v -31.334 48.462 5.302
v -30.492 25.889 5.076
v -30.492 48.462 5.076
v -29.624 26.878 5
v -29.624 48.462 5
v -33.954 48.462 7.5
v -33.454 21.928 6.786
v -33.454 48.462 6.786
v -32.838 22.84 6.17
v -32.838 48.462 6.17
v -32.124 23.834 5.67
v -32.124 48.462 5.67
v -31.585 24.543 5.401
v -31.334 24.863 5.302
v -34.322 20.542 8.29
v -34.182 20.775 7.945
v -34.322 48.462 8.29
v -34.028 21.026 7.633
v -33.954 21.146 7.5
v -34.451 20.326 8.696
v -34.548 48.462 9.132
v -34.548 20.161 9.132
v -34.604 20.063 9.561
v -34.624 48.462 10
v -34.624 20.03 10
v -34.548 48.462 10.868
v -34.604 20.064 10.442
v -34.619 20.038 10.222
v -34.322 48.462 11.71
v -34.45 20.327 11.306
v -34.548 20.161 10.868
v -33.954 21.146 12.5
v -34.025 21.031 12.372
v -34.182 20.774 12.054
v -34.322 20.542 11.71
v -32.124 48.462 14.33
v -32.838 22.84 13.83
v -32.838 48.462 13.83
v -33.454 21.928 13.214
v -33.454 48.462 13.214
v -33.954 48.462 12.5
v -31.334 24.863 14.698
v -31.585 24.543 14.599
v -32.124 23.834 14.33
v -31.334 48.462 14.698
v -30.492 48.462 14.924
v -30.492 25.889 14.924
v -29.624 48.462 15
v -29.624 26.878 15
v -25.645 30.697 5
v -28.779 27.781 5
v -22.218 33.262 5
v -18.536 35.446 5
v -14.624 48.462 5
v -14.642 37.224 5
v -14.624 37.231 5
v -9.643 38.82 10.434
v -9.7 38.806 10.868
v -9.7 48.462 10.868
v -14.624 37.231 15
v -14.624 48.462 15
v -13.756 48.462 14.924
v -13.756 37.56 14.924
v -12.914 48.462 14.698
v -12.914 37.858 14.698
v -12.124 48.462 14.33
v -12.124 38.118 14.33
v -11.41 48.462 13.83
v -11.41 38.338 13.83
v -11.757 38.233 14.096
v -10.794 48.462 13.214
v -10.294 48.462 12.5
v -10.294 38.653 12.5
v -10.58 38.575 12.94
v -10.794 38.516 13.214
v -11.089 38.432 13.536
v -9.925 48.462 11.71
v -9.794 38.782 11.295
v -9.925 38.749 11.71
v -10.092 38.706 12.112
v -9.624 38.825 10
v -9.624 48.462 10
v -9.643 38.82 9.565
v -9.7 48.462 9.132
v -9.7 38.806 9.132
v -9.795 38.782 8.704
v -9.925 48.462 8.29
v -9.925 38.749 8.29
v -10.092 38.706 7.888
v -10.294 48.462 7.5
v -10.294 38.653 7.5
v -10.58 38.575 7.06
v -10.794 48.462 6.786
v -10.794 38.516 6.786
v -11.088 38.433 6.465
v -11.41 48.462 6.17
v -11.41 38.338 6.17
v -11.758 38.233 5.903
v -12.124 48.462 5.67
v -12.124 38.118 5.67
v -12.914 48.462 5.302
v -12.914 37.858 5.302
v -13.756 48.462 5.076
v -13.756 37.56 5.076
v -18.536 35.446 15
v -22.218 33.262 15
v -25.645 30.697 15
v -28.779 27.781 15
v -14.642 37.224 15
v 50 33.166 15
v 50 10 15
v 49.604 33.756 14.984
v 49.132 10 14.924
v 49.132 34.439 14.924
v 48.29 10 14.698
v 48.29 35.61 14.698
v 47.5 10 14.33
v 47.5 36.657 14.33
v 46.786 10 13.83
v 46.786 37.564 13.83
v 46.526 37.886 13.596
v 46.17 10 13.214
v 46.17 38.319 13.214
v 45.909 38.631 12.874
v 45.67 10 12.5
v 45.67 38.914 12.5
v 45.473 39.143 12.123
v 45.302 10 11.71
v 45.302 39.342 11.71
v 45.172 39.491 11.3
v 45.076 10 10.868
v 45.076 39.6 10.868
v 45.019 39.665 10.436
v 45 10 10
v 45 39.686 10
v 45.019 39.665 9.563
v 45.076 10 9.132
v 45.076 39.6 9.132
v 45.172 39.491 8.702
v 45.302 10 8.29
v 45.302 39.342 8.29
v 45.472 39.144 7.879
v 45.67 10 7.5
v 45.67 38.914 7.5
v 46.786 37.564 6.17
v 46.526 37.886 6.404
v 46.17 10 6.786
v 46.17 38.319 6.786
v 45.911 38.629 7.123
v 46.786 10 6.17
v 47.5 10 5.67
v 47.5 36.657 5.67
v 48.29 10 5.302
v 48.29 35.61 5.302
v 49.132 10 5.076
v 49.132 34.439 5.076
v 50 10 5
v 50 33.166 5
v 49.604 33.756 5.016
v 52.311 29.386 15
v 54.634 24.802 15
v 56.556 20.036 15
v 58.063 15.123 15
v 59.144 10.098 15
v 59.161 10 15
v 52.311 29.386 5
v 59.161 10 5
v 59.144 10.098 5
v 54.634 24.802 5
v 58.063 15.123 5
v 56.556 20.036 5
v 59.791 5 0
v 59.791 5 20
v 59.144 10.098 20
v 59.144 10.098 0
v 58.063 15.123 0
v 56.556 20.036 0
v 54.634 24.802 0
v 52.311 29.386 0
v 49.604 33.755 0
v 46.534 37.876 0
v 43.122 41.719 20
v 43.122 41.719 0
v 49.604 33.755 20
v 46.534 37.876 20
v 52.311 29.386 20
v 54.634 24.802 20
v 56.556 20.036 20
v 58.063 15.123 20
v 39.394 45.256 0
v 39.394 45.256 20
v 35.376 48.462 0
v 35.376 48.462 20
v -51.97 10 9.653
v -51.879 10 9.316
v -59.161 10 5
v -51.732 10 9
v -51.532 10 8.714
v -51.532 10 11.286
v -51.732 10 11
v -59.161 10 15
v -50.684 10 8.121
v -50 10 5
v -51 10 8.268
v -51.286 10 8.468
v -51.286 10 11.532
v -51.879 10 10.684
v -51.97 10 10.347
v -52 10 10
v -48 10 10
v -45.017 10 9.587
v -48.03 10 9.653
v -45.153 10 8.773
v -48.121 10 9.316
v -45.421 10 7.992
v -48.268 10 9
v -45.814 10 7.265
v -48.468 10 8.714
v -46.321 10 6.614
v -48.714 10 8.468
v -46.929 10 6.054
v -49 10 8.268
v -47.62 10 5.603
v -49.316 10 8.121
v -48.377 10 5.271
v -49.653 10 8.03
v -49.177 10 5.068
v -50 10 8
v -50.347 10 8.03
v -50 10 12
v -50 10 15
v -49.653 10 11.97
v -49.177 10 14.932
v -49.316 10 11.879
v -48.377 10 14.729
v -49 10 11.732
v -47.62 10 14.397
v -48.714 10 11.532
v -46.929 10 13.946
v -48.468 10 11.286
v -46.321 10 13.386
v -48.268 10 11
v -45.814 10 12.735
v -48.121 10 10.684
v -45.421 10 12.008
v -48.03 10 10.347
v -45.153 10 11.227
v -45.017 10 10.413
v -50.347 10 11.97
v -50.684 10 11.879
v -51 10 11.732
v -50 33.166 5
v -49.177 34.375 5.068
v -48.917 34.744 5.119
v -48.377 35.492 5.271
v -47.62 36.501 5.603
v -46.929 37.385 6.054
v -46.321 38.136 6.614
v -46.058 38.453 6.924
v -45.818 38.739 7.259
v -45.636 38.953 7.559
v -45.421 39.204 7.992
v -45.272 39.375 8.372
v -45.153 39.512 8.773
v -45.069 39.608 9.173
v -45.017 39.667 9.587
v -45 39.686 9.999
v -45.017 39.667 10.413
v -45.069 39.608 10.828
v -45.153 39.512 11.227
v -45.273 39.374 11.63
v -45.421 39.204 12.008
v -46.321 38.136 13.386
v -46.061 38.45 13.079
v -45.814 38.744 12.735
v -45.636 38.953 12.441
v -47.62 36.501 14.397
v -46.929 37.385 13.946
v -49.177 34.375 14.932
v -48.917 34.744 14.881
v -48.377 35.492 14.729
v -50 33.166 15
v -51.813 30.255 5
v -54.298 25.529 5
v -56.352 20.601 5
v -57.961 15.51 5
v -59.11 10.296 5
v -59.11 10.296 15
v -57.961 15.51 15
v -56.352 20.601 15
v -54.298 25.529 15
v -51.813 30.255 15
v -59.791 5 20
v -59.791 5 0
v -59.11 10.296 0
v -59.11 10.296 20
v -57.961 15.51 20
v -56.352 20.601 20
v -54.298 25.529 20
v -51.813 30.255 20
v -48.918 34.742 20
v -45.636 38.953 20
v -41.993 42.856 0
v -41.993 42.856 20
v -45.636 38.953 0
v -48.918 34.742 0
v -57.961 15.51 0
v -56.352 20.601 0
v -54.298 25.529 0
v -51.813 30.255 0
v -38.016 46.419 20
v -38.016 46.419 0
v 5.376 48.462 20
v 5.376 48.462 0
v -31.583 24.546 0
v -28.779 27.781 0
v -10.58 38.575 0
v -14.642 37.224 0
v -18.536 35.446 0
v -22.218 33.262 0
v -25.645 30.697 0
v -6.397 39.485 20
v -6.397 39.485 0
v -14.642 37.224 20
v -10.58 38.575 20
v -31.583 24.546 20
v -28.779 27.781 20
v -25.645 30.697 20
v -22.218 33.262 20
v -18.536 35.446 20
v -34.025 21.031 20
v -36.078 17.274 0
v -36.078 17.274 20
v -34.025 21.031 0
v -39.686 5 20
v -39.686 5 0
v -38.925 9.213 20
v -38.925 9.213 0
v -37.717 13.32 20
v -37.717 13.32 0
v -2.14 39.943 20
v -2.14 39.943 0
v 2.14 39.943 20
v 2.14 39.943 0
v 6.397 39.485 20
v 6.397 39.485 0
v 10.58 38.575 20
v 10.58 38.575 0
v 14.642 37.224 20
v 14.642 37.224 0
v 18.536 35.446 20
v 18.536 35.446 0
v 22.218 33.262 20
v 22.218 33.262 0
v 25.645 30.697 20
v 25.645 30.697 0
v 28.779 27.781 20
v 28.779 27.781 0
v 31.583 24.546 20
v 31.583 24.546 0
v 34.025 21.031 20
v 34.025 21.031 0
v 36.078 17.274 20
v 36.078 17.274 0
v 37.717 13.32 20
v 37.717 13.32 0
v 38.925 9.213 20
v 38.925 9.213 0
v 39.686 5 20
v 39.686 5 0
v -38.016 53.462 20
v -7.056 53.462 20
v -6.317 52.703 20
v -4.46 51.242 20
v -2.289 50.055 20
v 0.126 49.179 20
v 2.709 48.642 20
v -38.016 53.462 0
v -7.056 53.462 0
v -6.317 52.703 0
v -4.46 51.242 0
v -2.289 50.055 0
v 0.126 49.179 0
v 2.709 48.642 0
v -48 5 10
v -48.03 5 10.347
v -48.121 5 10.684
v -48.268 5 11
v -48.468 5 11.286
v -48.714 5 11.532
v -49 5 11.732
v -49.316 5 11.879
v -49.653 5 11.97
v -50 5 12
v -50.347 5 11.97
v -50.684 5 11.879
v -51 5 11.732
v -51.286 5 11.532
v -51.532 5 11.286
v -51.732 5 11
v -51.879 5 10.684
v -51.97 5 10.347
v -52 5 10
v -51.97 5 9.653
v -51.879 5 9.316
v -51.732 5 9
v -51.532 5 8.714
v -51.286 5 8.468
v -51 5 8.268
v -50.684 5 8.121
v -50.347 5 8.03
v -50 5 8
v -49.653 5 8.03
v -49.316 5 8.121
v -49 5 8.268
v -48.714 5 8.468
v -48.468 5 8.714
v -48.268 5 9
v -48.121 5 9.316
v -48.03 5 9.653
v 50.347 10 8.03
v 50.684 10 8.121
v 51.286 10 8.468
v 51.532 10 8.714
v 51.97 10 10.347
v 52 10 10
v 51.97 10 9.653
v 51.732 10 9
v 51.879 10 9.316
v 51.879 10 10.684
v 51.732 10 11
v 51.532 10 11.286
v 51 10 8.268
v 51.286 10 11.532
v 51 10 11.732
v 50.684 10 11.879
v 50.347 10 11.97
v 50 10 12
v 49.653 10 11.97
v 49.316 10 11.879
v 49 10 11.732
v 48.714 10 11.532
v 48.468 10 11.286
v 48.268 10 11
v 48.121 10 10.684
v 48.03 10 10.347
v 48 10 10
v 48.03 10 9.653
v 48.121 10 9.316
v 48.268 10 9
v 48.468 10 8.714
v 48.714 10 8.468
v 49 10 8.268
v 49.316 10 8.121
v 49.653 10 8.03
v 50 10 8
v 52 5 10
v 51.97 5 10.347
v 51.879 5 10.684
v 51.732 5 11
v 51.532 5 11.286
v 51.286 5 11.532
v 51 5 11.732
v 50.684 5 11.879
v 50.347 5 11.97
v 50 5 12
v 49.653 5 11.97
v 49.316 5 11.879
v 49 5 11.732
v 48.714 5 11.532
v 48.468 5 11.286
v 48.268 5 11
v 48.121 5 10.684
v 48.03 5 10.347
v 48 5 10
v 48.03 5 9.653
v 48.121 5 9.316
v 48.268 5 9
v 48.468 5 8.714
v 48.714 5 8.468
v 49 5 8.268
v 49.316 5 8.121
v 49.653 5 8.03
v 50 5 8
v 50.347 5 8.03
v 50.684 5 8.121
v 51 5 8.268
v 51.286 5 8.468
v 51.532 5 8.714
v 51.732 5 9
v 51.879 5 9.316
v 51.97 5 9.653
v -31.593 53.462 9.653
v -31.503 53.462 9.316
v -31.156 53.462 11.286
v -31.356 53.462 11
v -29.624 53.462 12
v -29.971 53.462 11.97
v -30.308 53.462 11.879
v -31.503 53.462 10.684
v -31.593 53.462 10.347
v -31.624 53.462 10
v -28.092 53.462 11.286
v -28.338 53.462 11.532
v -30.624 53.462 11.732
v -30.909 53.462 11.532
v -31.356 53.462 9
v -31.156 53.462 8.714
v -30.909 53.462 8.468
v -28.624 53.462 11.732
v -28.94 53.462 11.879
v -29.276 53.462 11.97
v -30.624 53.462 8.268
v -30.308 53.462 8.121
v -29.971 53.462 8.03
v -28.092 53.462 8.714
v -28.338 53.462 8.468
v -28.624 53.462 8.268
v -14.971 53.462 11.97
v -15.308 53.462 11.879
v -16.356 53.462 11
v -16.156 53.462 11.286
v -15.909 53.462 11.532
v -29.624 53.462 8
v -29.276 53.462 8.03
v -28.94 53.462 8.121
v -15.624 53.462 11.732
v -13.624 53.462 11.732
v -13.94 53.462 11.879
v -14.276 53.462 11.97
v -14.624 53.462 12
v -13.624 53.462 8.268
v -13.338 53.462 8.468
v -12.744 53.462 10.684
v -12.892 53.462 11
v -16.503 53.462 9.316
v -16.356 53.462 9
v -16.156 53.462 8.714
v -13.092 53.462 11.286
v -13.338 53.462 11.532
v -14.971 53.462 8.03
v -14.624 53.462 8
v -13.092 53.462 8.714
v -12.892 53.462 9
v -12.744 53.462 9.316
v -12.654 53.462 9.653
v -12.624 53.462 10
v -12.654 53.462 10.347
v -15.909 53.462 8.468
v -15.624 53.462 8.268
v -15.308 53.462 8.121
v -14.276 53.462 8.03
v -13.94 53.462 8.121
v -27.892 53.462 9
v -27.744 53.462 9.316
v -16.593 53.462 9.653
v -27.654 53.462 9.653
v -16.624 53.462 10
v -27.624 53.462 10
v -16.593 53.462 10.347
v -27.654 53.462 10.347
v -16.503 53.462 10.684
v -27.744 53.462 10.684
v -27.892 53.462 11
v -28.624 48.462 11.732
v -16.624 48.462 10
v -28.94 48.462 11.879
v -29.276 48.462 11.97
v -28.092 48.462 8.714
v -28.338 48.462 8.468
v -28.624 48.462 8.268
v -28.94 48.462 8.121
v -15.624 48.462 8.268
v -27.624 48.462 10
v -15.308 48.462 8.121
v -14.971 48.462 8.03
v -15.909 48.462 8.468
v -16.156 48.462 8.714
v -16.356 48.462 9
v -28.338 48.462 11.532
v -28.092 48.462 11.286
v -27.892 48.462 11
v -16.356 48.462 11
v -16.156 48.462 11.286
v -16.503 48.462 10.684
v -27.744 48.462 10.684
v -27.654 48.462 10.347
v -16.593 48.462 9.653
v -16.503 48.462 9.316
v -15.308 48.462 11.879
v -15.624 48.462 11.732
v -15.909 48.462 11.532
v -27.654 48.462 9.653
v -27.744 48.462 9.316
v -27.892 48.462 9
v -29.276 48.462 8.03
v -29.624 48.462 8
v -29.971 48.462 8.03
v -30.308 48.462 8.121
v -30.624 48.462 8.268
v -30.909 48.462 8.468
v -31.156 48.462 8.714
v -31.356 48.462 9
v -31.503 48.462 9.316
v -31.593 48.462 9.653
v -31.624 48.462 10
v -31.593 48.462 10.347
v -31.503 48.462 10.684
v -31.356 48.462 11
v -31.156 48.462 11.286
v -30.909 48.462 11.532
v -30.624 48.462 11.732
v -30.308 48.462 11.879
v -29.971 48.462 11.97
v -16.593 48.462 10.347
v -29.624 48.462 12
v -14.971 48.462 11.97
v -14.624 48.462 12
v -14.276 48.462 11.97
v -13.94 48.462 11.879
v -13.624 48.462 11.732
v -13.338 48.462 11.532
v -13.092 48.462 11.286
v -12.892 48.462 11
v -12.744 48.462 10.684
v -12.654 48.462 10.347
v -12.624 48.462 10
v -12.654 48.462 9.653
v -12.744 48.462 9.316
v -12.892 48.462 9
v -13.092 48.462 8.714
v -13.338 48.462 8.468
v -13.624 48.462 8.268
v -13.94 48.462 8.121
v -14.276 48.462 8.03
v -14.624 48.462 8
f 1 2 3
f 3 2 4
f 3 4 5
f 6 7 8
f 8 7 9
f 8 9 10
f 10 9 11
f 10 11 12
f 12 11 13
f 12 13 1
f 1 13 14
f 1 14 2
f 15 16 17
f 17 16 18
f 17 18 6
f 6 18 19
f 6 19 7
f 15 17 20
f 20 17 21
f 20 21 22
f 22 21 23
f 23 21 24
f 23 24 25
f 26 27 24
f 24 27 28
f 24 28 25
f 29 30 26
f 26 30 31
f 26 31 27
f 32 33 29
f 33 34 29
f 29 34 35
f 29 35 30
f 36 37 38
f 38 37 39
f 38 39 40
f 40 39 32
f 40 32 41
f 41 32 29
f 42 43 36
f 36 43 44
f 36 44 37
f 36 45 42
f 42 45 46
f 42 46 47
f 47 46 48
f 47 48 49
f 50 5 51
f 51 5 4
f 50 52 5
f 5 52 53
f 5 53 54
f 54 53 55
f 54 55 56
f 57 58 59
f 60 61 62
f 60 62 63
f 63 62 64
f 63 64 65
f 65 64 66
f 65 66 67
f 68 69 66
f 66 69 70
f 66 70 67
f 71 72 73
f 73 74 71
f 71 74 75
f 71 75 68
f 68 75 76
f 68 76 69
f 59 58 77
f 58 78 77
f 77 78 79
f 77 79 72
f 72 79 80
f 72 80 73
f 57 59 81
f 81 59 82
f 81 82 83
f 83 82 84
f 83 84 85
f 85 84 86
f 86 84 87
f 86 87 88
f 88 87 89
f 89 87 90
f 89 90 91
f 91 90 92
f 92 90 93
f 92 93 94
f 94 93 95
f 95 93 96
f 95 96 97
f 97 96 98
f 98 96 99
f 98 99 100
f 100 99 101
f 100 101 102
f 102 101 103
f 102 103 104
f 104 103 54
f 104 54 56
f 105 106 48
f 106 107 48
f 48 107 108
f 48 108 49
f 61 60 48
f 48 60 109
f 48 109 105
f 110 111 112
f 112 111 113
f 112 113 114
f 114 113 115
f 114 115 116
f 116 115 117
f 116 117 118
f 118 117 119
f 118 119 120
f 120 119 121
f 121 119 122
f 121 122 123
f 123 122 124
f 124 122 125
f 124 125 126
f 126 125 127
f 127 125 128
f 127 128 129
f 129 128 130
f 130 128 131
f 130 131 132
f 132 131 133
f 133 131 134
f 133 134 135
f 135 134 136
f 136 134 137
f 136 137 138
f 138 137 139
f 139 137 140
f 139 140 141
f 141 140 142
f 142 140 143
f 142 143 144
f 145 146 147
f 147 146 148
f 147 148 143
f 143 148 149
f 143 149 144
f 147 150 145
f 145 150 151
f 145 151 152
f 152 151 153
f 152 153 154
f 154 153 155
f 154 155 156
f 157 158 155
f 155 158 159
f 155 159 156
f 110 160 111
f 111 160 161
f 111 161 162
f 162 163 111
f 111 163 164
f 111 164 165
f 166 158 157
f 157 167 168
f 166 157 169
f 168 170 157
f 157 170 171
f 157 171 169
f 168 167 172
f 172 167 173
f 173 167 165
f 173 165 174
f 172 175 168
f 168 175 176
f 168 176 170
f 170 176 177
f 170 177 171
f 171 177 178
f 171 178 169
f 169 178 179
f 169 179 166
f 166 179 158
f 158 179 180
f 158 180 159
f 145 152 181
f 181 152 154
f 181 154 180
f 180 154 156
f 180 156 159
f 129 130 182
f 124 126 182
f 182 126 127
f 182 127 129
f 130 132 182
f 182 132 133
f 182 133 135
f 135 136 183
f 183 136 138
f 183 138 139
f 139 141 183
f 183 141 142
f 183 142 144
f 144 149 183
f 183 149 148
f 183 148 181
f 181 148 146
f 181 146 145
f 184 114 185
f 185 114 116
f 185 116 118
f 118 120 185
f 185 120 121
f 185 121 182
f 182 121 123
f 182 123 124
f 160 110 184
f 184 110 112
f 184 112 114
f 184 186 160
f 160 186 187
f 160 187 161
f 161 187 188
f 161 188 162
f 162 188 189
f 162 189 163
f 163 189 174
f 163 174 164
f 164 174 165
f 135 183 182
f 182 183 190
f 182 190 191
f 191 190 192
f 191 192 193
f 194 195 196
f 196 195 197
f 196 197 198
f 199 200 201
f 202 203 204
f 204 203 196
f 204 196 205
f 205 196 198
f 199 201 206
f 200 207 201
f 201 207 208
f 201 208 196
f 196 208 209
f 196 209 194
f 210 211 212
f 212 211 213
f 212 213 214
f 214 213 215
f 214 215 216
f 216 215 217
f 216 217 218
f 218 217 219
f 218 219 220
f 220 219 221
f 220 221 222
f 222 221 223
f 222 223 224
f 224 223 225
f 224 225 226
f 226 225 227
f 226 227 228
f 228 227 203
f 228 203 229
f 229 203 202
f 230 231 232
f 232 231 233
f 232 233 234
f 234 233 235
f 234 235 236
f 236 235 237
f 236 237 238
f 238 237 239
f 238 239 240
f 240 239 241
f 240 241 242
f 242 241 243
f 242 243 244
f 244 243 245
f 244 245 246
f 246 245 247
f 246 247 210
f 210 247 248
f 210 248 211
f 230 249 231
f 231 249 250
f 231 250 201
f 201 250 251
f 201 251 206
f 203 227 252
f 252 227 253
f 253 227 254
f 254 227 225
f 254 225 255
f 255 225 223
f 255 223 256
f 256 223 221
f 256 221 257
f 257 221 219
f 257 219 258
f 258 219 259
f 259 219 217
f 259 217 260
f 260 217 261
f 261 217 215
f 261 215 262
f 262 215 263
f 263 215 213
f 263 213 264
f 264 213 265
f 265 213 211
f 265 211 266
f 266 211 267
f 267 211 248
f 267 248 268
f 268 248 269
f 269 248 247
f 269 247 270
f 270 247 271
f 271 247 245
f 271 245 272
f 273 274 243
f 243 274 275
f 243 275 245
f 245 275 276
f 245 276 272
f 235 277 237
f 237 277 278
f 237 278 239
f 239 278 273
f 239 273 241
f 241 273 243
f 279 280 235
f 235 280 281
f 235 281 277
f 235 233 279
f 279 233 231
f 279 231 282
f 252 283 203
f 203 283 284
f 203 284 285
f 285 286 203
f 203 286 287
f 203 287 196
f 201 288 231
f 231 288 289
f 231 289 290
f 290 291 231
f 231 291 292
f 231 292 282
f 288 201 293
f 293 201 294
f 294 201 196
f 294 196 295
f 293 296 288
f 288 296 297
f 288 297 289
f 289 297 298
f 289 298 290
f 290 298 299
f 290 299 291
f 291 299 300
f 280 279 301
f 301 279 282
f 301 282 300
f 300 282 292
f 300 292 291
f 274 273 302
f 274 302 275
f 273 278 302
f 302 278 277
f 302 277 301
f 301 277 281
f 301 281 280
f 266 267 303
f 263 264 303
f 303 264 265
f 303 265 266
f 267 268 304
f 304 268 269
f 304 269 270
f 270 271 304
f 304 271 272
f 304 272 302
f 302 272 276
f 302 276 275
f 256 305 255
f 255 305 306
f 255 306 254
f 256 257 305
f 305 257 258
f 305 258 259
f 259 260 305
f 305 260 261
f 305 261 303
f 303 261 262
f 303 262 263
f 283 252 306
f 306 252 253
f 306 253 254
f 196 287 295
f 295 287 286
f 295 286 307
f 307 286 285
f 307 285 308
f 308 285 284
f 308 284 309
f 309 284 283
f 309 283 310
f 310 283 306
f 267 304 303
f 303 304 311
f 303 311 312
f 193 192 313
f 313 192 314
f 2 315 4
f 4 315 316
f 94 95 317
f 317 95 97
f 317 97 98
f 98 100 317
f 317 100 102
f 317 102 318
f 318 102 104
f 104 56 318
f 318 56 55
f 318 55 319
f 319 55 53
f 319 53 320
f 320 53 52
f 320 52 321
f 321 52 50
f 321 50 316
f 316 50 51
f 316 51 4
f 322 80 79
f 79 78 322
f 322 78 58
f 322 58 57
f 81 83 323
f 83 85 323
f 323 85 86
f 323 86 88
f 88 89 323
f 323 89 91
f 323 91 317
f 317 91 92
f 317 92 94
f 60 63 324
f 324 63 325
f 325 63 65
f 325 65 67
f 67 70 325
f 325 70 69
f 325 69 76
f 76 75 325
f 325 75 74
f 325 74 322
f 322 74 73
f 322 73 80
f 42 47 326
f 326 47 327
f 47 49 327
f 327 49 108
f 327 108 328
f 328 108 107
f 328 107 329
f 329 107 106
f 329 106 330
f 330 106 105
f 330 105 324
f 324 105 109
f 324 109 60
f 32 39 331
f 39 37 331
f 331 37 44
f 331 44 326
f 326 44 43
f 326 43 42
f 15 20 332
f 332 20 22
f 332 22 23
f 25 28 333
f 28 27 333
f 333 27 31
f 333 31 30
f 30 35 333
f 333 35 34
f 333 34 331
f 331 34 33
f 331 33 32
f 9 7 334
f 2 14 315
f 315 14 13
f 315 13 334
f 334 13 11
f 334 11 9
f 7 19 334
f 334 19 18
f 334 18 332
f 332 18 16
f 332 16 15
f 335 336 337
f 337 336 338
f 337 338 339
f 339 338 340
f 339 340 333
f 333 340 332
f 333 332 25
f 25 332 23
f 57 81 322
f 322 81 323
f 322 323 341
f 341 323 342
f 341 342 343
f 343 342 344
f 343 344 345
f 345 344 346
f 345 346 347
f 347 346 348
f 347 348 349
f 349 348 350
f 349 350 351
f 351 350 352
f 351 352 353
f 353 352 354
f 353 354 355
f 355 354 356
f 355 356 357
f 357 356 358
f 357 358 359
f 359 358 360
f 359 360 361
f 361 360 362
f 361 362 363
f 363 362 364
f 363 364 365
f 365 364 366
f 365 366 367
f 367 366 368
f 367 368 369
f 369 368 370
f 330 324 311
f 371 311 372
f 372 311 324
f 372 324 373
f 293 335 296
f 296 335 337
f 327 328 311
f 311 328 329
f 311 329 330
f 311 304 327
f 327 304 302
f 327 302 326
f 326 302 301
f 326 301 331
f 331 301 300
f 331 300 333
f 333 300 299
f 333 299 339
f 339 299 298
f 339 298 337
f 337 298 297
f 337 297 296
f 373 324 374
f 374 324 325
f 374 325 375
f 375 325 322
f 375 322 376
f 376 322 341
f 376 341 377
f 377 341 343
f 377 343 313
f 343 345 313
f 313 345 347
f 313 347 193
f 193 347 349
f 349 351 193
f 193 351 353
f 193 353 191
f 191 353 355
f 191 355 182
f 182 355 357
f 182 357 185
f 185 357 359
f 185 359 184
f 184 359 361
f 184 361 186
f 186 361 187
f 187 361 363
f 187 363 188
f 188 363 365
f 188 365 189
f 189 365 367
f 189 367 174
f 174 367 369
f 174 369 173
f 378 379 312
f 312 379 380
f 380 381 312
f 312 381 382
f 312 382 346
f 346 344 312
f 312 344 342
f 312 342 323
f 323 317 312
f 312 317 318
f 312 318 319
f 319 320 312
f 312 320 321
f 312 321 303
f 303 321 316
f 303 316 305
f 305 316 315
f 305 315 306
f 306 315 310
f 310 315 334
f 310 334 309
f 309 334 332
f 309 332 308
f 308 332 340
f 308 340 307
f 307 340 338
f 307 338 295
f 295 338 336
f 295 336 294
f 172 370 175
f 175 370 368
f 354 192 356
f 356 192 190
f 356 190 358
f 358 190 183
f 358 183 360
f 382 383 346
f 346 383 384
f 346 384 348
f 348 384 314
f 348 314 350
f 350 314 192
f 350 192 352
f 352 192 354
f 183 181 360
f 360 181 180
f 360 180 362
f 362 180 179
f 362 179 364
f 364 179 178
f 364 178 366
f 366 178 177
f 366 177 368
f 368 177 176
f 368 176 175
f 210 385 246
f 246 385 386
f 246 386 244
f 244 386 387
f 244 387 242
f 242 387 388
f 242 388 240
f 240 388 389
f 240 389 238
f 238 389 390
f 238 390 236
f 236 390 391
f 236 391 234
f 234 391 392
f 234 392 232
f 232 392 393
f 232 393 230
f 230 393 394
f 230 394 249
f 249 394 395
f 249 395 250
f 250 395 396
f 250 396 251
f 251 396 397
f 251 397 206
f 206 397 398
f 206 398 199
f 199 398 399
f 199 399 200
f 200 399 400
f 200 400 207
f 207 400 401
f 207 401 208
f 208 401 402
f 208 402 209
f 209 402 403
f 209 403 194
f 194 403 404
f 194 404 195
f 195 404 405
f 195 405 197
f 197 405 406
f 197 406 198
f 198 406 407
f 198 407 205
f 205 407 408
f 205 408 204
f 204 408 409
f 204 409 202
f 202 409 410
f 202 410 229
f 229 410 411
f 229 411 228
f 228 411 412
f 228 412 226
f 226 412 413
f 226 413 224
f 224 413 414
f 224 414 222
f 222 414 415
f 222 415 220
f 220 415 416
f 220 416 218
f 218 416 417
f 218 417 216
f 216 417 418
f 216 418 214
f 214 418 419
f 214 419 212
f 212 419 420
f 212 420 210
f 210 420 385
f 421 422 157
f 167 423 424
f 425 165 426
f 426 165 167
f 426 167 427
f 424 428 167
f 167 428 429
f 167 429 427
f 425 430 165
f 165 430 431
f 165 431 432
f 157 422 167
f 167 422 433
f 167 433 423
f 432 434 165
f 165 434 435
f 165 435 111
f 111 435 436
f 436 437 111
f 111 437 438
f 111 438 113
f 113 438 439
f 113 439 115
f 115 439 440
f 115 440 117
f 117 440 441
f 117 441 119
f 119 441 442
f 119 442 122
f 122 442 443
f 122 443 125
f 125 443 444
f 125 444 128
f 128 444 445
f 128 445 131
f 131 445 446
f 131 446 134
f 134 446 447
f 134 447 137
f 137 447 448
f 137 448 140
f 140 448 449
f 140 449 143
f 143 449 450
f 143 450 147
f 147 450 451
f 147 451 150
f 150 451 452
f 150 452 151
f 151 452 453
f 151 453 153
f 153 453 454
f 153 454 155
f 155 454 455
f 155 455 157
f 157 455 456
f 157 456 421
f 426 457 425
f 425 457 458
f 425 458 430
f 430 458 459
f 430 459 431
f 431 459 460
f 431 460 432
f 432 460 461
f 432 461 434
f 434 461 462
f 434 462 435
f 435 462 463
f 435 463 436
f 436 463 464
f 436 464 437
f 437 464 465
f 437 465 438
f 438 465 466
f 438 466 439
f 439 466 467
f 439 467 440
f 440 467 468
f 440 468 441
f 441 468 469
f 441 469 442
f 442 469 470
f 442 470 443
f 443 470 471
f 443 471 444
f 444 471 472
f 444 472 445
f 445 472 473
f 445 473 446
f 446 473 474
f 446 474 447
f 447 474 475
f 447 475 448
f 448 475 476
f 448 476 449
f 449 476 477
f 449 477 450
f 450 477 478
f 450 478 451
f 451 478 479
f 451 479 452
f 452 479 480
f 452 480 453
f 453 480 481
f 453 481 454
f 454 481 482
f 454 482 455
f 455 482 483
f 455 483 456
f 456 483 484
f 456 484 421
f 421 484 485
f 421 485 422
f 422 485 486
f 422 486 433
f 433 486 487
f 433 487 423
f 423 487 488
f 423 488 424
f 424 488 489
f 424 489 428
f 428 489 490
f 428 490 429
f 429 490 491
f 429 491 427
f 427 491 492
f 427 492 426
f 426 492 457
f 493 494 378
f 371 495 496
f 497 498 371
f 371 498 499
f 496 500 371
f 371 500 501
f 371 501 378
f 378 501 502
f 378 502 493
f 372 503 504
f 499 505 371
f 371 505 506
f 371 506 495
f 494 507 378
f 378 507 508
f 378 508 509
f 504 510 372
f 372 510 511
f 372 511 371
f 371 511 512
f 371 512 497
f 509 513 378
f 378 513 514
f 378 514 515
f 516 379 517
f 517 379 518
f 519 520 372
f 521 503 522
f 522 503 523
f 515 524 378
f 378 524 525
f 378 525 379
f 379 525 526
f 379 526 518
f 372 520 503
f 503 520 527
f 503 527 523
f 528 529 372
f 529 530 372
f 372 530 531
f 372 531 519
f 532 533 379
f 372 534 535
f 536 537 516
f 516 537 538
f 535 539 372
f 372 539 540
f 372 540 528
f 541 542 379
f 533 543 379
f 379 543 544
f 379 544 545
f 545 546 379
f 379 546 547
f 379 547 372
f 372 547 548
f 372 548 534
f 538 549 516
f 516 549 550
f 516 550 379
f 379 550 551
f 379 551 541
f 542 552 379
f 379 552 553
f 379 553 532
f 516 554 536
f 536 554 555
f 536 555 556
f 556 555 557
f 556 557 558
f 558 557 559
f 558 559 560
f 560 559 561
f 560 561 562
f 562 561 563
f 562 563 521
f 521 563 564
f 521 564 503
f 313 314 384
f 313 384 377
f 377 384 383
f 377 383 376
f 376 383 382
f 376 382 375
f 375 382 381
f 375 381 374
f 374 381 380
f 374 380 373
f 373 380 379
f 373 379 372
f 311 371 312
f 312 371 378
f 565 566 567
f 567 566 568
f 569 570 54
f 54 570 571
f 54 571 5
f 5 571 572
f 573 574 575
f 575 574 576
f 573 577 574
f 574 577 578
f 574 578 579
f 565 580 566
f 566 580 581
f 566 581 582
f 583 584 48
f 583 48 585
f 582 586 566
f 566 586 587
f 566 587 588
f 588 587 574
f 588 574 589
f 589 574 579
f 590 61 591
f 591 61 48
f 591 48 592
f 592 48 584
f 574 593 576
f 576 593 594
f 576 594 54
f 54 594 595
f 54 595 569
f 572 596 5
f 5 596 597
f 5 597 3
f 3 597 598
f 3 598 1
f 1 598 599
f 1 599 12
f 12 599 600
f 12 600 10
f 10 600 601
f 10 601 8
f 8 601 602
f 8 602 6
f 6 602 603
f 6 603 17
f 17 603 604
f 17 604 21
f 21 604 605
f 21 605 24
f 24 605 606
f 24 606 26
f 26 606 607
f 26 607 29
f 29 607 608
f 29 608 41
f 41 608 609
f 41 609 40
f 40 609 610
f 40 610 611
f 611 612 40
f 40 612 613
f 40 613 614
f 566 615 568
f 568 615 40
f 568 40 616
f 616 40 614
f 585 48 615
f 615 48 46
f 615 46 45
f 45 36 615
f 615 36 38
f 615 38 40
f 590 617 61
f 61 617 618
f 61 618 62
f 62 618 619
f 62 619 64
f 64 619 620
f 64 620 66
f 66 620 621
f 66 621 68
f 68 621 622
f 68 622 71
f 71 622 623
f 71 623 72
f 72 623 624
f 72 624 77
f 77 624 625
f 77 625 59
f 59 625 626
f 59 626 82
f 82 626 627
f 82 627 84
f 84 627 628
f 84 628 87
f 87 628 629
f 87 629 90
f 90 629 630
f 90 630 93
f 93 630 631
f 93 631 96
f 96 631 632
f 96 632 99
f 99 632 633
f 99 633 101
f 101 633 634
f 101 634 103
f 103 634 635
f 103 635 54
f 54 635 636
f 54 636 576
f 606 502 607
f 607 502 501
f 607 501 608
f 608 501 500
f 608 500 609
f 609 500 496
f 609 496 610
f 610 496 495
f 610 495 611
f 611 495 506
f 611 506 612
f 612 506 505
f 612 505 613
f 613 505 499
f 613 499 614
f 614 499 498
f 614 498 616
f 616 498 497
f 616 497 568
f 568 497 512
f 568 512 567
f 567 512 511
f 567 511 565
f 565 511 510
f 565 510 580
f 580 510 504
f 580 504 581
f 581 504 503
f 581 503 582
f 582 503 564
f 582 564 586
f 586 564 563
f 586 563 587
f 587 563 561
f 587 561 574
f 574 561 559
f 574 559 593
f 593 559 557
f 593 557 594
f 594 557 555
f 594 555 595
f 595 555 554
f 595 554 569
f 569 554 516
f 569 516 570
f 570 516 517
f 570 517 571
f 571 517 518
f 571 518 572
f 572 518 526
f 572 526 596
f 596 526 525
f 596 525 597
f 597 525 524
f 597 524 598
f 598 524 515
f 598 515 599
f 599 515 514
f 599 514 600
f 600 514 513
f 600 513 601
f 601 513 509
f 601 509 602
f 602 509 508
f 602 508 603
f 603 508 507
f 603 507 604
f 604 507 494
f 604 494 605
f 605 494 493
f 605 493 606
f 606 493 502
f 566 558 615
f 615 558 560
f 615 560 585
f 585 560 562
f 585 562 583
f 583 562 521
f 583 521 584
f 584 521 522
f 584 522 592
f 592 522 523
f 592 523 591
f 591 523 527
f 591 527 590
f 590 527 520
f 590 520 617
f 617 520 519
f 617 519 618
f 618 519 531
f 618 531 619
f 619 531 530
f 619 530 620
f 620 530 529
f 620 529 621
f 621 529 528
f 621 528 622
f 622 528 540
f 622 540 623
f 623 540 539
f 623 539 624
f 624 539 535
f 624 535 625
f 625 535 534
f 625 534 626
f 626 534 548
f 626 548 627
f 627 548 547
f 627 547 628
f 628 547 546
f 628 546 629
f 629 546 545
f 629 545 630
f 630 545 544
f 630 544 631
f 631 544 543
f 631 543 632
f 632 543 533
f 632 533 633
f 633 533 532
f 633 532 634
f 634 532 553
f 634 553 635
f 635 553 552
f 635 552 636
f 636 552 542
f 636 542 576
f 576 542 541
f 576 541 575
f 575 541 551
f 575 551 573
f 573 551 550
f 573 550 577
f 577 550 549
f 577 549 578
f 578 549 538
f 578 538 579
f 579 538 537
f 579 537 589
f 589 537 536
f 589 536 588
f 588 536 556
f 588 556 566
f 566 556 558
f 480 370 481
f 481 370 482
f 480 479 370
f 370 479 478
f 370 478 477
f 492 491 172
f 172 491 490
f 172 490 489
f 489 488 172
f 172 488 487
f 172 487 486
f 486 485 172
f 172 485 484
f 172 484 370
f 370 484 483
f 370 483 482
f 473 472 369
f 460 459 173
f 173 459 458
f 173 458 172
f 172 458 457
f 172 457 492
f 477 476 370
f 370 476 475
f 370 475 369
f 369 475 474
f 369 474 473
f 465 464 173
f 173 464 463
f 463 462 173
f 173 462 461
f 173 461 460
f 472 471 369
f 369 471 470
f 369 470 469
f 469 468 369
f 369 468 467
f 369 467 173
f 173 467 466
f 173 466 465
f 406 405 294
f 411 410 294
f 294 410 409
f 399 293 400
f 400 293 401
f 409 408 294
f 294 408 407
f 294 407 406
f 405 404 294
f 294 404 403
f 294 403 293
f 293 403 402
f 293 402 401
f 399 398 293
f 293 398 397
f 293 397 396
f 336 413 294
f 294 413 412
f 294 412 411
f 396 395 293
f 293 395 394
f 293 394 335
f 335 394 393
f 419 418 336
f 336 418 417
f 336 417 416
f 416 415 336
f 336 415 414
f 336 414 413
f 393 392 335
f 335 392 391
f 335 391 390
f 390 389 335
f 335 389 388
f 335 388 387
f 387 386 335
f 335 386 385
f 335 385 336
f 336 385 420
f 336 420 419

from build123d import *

# Parameters (mm, degrees)
BOSS_EXTRUDE1_DEPTH = 20
SKETCH2_R           = 2.25
CUT_EXTRUDE1_DEPTH  = 79
CUT_EXTRUDE4_DEPTH  = 59
SKETCH7_R           = 2
BOSS_EXTRUDE3_DEPTH = 10
CUT_EXTRUDE5_DEPTH  = 23
BOSS_EXTRUDE2_DEPTH = 20
SKETCH4_R           = 2.25
CUT_EXTRUDE2_DEPTH  = 30
CUT_EXTRUDE6_DEPTH  = 36
SKETCH10_R          = 2
BOSS_EXTRUDE4_DEPTH = 5
SKETCH12_W          = 120
SKETCH12_H          = 5
CUT_EXTRUDE7_DEPTH  = 20


with BuildPart() as part:
    # Sketch1 → Boss-Extrude1 (new body)
    with BuildSketch(Plane.XY):
        with BuildLine():
            Line((-60, 0), (-40, 0))
            ThreePointArc((-40, 0), (-28.284271247, 28.284271247), (0, 40))
            Line((0, 40), (0, 48.461538462))
            Line((0, 48.461538462), (-35.376253193, 48.461538462))
            ThreePointArc((-35.376253193, 48.461538462), (-53.491004812, 27.179264233), (-60, 0))
        make_face()
    boss_extrude1 = extrude(amount=BOSS_EXTRUDE1_DEPTH)

    # Sketch2 → Cut-Extrude1 (cut)
    with BuildSketch(Plane.XZ):
        with Locations((-50, 10)):
            Circle(SKETCH2_R)
    cut_extrude1 = extrude(amount=-CUT_EXTRUDE1_DEPTH, mode=Mode.SUBTRACT)

    # Sketch6 → Cut-Extrude4 (cut)
    with BuildSketch(Plane.XZ):
        with BuildLine():
            Line((-60, 5), (-50, 5))
            ThreePointArc((-50, 5), (-55, 10), (-50, 15))
            Line((-50, 15), (-60, 15))
            Line((-60, 15), (-60, 5))
        make_face()
        with BuildLine():
            ThreePointArc((-50, 15), (-55, 10), (-50, 5))
            Line((-50, 5), (-50, 7.75))
            ThreePointArc((-50, 7.75), (-52.25, 10), (-50, 12.25))
            Line((-50, 12.25), (-50, 15))
        make_face()
        with BuildLine():
            Line((-50, 7.75), (-50, 5))
            ThreePointArc((-50, 5), (-46.464466094, 6.464466094), (-45, 10))
            ThreePointArc((-45, 10), (-46.464466094, 13.535533906), (-50, 15))
            Line((-50, 15), (-50, 12.25))
            ThreePointArc((-50, 12.25), (-48.409009742, 11.590990258), (-47.75, 10))
            ThreePointArc((-47.75, 10), (-48.409009742, 8.409009742), (-50, 7.75))
        make_face()
    cut_extrude4 = extrude(amount=-CUT_EXTRUDE4_DEPTH, mode=Mode.SUBTRACT)

    # Sketch7 → Boss-Extrude3 (add)
    with BuildSketch(Plane.XZ):
        with BuildLine():
            Line((-50, 15), (-60, 15))
            Line((-60, 15), (-60, 5))
            Line((-60, 5), (-50, 5))
            ThreePointArc((-50, 5), (-45, 10), (-50, 15))
        make_face()
        with Locations((-50, 10)):
            Circle(SKETCH7_R, mode=Mode.SUBTRACT)
    boss_extrude3 = extrude(amount=-BOSS_EXTRUDE3_DEPTH)

    # Sketch8 → Cut-Extrude5 (cut)
    with BuildSketch(Plane.XY.offset(20)):
        with BuildLine():
            Line((-64.996039314, 0), (-60, 0))
            ThreePointArc((-60, 0), (-59.578019695, 7.10348993), (-58.31801436, 14.107062099))
            Line((-58.31801436, 14.107062099), (-63.173999234, 15.28171938))
            ThreePointArc((-63.173999234, 15.28171938), (-64.538921839, 7.694978513), (-64.996039314, 0))
        make_face()
    cut_extrude5 = extrude(amount=-CUT_EXTRUDE5_DEPTH, mode=Mode.SUBTRACT)

    # Mirror1: Boss-Extrude1, Cut-Extrude1, Cut-Extrude4, Boss-Extrude3, Cut-Extrude5 across plane
    add(boss_extrude1.mirror(Plane(origin=(0, 0, 20), x_dir=(0, 0, 1), z_dir=(1, 0, 0))))
    add(cut_extrude1.mirror(Plane(origin=(0, 0, 20), x_dir=(0, 0, 1), z_dir=(1, 0, 0))), mode=Mode.SUBTRACT)
    add(cut_extrude4.mirror(Plane(origin=(0, 0, 20), x_dir=(0, 0, 1), z_dir=(1, 0, 0))), mode=Mode.SUBTRACT)
    add(boss_extrude3.mirror(Plane(origin=(0, 0, 20), x_dir=(0, 0, 1), z_dir=(1, 0, 0))))
    add(cut_extrude5.mirror(Plane(origin=(0, 0, 20), x_dir=(0, 0, 1), z_dir=(1, 0, 0))), mode=Mode.SUBTRACT)

    # Sketch3 → Boss-Extrude2 (add)
    with BuildSketch(Plane(origin=(0, 0, 0), x_dir=(-1, 0, 0), z_dir=(0, 0, -1))):
        with BuildLine():
            add(Edge.make_bspline(
                [(-5.376253193, 48.461538462), (2.596156859, 48.461538462), (7.056491998, 53.461538462)],
                knots=[4.71238898, 4.71238898, 4.71238898, 5.689437437, 5.689437437, 5.689437437], degree=2, weights=[1, 0.883026434, 1]))
            Line((-5.376253193, 48.461538462), (35.376253193, 48.461538462))
            ThreePointArc((35.376253193, 48.461538462), (36.710520922, 47.458799538), (38.016381278, 46.419335998))
            Line((38.016381278, 46.419335998), (38.016381278, 53.461538462))
            Line((38.016381278, 53.461538462), (7.056491998, 53.461538462))
        make_face()
    extrude(amount=-BOSS_EXTRUDE2_DEPTH)

    # Sketch4 → Cut-Extrude2 (cut)
    with BuildSketch(Plane(origin=(0, 53.461538462, 0), x_dir=(1, 0, 0), z_dir=(0, 1, 0))):
        with Locations((-29.623746807, -10)):
            Circle(SKETCH4_R)
        with Locations((-14.623746807, -10)):
            Circle(SKETCH4_R)
    extrude(amount=-CUT_EXTRUDE2_DEPTH, mode=Mode.SUBTRACT)

    # Sketch9 → Cut-Extrude6 (cut)
    with BuildSketch(Plane(origin=(0, 53.461538462, 0), x_dir=(1, 0, 0), z_dir=(0, 1, 0))):
        with BuildLine():
            Line((-29.623746807, -5), (-14.623746807, -5))
            ThreePointArc((-14.623746807, -5), (-9.623746807, -10), (-14.623746807, -15))
            Line((-14.623746807, -15), (-29.623746807, -15))
            ThreePointArc((-29.623746807, -15), (-34.623746807, -10), (-29.623746807, -5))
        make_face()
    extrude(amount=-CUT_EXTRUDE6_DEPTH, mode=Mode.SUBTRACT)

    # Sketch10 → Boss-Extrude4 (add)
    with BuildSketch(Plane(origin=(0, 53.461538462, 0), x_dir=(1, 0, 0), z_dir=(0, 1, 0))):
        with BuildLine():
            Line((-29.623746807, -5), (-14.623746807, -5))
            ThreePointArc((-14.623746807, -5), (-9.623746807, -10), (-14.623746807, -15))
            Line((-14.623746807, -15), (-29.623746807, -15))
            ThreePointArc((-29.623746807, -15), (-34.623746807, -10), (-29.623746807, -5))
        make_face()
        with Locations((-29.623746807, -10)):
            Circle(SKETCH10_R, mode=Mode.SUBTRACT)
        with Locations((-14.623746807, -10)):
            Circle(SKETCH10_R, mode=Mode.SUBTRACT)
    extrude(amount=-BOSS_EXTRUDE4_DEPTH)

    # Sketch12 → Cut-Extrude7 (cut)
    with BuildSketch(Plane(origin=(0, 0, 0), x_dir=(-1, 0, 0), z_dir=(0, 0, -1))):
        with Locations((0, 2.5)):
            Rectangle(SKETCH12_W, SKETCH12_H)
    extrude(amount=-CUT_EXTRUDE7_DEPTH, mode=Mode.SUBTRACT)


solid = part.part
